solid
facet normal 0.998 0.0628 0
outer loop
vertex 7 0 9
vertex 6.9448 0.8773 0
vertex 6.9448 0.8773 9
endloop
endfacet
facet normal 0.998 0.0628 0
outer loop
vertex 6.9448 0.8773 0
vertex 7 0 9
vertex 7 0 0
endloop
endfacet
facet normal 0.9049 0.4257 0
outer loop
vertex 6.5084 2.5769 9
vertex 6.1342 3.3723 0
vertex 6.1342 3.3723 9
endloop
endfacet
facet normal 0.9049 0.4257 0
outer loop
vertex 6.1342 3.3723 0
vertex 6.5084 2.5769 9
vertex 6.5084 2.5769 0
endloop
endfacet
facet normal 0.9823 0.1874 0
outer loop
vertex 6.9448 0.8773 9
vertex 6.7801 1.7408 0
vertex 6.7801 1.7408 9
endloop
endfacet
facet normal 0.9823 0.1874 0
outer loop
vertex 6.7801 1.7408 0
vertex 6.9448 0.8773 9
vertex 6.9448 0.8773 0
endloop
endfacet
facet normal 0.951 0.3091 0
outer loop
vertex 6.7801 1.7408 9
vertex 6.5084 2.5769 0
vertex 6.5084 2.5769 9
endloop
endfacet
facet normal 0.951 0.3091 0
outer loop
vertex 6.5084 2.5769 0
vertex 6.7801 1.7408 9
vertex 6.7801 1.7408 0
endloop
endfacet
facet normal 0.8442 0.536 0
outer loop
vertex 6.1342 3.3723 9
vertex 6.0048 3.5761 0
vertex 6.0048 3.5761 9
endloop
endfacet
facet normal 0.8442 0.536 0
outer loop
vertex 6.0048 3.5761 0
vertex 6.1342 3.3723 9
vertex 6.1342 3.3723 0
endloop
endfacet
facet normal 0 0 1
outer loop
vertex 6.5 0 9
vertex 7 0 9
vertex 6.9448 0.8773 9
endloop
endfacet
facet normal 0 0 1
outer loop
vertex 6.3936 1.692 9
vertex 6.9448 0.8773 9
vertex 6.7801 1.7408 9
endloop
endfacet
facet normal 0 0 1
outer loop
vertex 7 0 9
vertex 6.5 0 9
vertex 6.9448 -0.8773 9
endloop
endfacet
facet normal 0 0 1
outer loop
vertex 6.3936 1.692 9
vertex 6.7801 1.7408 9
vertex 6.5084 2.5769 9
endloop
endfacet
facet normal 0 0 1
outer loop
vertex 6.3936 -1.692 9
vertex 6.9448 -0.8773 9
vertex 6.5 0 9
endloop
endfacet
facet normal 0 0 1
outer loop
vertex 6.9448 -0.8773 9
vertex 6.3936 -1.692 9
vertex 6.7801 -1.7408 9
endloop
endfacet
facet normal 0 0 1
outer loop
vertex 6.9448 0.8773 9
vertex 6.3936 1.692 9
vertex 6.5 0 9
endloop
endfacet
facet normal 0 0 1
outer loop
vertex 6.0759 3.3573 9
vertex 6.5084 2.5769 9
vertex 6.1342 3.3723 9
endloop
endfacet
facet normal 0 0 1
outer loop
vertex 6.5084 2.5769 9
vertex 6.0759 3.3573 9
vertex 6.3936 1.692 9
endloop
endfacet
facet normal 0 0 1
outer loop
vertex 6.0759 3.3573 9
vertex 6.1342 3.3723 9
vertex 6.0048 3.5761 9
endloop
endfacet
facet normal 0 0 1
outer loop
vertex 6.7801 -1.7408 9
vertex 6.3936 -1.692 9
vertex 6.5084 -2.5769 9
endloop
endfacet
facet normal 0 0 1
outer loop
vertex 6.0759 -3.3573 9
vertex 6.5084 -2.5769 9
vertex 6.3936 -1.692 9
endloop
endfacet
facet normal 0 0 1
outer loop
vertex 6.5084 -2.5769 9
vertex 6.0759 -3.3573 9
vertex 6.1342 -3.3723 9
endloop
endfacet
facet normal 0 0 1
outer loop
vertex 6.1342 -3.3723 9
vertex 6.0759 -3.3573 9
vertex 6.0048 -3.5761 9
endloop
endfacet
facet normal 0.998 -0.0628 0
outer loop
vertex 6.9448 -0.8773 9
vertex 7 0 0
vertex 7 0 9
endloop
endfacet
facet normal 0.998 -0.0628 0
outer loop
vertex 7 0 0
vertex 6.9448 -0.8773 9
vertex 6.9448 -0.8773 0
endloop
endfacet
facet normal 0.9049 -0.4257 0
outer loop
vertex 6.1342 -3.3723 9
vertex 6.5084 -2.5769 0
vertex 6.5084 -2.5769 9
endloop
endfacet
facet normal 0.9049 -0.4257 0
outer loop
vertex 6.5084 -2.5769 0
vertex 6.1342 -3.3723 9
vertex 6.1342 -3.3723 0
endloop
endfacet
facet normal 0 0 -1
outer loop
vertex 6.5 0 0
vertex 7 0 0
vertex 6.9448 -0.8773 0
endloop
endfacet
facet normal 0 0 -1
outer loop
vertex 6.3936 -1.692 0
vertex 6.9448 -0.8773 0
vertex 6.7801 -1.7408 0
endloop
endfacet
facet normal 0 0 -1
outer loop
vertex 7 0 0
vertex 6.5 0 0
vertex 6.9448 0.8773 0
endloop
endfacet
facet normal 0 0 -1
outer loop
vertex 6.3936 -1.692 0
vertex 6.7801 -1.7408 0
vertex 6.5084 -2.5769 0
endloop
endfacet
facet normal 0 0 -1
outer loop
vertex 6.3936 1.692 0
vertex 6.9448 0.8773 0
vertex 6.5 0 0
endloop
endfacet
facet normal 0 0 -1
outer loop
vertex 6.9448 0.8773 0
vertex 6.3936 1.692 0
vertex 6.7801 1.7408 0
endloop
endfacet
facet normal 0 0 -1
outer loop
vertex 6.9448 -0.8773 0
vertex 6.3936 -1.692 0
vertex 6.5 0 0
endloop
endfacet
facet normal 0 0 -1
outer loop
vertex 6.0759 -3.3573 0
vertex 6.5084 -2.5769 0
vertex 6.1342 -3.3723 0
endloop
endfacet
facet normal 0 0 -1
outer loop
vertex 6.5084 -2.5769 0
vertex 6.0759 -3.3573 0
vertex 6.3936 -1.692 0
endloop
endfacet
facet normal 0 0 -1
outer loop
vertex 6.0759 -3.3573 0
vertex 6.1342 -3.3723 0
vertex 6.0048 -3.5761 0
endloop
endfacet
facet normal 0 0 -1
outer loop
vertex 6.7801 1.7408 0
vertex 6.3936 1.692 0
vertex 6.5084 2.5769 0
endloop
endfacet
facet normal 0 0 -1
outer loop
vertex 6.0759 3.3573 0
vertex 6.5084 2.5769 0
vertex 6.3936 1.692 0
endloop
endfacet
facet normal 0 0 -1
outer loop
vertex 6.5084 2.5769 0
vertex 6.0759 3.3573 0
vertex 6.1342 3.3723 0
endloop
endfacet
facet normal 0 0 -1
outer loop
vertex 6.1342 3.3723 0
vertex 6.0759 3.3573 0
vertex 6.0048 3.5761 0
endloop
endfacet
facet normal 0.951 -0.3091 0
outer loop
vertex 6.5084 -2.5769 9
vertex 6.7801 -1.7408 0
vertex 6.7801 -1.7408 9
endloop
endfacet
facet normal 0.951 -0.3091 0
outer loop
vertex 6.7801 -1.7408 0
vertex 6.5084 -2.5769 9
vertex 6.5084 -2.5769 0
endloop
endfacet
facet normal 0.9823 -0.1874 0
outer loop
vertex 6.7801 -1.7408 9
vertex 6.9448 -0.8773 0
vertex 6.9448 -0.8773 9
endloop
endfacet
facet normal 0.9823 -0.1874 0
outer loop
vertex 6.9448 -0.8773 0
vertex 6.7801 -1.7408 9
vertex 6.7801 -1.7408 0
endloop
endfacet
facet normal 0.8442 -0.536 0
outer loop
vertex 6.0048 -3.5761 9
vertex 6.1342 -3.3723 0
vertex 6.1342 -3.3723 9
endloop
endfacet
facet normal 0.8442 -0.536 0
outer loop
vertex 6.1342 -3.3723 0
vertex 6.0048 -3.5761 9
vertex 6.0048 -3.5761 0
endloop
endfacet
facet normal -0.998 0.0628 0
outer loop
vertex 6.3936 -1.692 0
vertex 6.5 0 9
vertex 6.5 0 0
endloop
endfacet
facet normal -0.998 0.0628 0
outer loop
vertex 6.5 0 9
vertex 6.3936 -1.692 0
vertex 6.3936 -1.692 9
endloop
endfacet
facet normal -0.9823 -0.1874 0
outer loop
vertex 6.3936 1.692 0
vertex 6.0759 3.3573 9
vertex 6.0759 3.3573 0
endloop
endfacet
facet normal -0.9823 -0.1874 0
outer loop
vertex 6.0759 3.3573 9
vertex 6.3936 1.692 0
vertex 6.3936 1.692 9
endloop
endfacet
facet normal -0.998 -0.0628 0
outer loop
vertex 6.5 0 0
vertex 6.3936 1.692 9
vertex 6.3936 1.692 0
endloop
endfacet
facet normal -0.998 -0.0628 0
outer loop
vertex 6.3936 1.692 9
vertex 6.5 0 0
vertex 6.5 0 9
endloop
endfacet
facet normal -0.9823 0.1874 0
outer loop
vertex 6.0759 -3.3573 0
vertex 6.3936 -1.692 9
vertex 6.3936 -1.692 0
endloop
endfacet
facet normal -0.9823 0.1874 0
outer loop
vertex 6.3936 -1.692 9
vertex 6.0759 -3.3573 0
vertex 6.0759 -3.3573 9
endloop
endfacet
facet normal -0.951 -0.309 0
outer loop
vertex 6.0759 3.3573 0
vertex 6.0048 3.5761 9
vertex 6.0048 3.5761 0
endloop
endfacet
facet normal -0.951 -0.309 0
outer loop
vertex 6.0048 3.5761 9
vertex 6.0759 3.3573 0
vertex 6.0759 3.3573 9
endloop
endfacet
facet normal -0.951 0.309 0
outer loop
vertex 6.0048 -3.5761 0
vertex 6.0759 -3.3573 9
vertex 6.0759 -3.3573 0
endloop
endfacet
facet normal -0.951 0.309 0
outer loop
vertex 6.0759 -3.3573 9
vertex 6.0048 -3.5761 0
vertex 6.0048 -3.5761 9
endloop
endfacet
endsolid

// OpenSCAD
$fn = 50;


difference() {
	union() {
		cylinder(h = 9, r = 7.0000000000);
		translate(v = [-10.0000000000, 0, 0]) {
			cylinder(h = 9, r = 7.0000000000);
		}
	}
	union() {
		cylinder(h = 9, r = 3.2500000000);
		cylinder(h = 9, r = 1.8000000000);
		cylinder(h = 9, r = 1.8000000000);
		cylinder(h = 9, r = 1.8000000000);
		translate(v = [-14.5000000000, 0, 0]) {
			hull() {
				translate(v = [-3.7500000000, 0.0000000000, 0]) {
					cylinder(h = 9, r = 10.5000000000);
				}
				translate(v = [3.7500000000, 0.0000000000, 0]) {
					cylinder(h = 9, r = 10.5000000000);
				}
				translate(v = [-3.7500000000, -0.0000000000, 0]) {
					cylinder(h = 9, r = 10.5000000000);
				}
				translate(v = [3.7500000000, -0.0000000000, 0]) {
					cylinder(h = 9, r = 10.5000000000);
				}
			}
		}
		translate(v = [-7.0000000000, 0, 0.0000000000]) {
			cylinder(h = 9, r = 13.5000000000);
		}
	}
}
